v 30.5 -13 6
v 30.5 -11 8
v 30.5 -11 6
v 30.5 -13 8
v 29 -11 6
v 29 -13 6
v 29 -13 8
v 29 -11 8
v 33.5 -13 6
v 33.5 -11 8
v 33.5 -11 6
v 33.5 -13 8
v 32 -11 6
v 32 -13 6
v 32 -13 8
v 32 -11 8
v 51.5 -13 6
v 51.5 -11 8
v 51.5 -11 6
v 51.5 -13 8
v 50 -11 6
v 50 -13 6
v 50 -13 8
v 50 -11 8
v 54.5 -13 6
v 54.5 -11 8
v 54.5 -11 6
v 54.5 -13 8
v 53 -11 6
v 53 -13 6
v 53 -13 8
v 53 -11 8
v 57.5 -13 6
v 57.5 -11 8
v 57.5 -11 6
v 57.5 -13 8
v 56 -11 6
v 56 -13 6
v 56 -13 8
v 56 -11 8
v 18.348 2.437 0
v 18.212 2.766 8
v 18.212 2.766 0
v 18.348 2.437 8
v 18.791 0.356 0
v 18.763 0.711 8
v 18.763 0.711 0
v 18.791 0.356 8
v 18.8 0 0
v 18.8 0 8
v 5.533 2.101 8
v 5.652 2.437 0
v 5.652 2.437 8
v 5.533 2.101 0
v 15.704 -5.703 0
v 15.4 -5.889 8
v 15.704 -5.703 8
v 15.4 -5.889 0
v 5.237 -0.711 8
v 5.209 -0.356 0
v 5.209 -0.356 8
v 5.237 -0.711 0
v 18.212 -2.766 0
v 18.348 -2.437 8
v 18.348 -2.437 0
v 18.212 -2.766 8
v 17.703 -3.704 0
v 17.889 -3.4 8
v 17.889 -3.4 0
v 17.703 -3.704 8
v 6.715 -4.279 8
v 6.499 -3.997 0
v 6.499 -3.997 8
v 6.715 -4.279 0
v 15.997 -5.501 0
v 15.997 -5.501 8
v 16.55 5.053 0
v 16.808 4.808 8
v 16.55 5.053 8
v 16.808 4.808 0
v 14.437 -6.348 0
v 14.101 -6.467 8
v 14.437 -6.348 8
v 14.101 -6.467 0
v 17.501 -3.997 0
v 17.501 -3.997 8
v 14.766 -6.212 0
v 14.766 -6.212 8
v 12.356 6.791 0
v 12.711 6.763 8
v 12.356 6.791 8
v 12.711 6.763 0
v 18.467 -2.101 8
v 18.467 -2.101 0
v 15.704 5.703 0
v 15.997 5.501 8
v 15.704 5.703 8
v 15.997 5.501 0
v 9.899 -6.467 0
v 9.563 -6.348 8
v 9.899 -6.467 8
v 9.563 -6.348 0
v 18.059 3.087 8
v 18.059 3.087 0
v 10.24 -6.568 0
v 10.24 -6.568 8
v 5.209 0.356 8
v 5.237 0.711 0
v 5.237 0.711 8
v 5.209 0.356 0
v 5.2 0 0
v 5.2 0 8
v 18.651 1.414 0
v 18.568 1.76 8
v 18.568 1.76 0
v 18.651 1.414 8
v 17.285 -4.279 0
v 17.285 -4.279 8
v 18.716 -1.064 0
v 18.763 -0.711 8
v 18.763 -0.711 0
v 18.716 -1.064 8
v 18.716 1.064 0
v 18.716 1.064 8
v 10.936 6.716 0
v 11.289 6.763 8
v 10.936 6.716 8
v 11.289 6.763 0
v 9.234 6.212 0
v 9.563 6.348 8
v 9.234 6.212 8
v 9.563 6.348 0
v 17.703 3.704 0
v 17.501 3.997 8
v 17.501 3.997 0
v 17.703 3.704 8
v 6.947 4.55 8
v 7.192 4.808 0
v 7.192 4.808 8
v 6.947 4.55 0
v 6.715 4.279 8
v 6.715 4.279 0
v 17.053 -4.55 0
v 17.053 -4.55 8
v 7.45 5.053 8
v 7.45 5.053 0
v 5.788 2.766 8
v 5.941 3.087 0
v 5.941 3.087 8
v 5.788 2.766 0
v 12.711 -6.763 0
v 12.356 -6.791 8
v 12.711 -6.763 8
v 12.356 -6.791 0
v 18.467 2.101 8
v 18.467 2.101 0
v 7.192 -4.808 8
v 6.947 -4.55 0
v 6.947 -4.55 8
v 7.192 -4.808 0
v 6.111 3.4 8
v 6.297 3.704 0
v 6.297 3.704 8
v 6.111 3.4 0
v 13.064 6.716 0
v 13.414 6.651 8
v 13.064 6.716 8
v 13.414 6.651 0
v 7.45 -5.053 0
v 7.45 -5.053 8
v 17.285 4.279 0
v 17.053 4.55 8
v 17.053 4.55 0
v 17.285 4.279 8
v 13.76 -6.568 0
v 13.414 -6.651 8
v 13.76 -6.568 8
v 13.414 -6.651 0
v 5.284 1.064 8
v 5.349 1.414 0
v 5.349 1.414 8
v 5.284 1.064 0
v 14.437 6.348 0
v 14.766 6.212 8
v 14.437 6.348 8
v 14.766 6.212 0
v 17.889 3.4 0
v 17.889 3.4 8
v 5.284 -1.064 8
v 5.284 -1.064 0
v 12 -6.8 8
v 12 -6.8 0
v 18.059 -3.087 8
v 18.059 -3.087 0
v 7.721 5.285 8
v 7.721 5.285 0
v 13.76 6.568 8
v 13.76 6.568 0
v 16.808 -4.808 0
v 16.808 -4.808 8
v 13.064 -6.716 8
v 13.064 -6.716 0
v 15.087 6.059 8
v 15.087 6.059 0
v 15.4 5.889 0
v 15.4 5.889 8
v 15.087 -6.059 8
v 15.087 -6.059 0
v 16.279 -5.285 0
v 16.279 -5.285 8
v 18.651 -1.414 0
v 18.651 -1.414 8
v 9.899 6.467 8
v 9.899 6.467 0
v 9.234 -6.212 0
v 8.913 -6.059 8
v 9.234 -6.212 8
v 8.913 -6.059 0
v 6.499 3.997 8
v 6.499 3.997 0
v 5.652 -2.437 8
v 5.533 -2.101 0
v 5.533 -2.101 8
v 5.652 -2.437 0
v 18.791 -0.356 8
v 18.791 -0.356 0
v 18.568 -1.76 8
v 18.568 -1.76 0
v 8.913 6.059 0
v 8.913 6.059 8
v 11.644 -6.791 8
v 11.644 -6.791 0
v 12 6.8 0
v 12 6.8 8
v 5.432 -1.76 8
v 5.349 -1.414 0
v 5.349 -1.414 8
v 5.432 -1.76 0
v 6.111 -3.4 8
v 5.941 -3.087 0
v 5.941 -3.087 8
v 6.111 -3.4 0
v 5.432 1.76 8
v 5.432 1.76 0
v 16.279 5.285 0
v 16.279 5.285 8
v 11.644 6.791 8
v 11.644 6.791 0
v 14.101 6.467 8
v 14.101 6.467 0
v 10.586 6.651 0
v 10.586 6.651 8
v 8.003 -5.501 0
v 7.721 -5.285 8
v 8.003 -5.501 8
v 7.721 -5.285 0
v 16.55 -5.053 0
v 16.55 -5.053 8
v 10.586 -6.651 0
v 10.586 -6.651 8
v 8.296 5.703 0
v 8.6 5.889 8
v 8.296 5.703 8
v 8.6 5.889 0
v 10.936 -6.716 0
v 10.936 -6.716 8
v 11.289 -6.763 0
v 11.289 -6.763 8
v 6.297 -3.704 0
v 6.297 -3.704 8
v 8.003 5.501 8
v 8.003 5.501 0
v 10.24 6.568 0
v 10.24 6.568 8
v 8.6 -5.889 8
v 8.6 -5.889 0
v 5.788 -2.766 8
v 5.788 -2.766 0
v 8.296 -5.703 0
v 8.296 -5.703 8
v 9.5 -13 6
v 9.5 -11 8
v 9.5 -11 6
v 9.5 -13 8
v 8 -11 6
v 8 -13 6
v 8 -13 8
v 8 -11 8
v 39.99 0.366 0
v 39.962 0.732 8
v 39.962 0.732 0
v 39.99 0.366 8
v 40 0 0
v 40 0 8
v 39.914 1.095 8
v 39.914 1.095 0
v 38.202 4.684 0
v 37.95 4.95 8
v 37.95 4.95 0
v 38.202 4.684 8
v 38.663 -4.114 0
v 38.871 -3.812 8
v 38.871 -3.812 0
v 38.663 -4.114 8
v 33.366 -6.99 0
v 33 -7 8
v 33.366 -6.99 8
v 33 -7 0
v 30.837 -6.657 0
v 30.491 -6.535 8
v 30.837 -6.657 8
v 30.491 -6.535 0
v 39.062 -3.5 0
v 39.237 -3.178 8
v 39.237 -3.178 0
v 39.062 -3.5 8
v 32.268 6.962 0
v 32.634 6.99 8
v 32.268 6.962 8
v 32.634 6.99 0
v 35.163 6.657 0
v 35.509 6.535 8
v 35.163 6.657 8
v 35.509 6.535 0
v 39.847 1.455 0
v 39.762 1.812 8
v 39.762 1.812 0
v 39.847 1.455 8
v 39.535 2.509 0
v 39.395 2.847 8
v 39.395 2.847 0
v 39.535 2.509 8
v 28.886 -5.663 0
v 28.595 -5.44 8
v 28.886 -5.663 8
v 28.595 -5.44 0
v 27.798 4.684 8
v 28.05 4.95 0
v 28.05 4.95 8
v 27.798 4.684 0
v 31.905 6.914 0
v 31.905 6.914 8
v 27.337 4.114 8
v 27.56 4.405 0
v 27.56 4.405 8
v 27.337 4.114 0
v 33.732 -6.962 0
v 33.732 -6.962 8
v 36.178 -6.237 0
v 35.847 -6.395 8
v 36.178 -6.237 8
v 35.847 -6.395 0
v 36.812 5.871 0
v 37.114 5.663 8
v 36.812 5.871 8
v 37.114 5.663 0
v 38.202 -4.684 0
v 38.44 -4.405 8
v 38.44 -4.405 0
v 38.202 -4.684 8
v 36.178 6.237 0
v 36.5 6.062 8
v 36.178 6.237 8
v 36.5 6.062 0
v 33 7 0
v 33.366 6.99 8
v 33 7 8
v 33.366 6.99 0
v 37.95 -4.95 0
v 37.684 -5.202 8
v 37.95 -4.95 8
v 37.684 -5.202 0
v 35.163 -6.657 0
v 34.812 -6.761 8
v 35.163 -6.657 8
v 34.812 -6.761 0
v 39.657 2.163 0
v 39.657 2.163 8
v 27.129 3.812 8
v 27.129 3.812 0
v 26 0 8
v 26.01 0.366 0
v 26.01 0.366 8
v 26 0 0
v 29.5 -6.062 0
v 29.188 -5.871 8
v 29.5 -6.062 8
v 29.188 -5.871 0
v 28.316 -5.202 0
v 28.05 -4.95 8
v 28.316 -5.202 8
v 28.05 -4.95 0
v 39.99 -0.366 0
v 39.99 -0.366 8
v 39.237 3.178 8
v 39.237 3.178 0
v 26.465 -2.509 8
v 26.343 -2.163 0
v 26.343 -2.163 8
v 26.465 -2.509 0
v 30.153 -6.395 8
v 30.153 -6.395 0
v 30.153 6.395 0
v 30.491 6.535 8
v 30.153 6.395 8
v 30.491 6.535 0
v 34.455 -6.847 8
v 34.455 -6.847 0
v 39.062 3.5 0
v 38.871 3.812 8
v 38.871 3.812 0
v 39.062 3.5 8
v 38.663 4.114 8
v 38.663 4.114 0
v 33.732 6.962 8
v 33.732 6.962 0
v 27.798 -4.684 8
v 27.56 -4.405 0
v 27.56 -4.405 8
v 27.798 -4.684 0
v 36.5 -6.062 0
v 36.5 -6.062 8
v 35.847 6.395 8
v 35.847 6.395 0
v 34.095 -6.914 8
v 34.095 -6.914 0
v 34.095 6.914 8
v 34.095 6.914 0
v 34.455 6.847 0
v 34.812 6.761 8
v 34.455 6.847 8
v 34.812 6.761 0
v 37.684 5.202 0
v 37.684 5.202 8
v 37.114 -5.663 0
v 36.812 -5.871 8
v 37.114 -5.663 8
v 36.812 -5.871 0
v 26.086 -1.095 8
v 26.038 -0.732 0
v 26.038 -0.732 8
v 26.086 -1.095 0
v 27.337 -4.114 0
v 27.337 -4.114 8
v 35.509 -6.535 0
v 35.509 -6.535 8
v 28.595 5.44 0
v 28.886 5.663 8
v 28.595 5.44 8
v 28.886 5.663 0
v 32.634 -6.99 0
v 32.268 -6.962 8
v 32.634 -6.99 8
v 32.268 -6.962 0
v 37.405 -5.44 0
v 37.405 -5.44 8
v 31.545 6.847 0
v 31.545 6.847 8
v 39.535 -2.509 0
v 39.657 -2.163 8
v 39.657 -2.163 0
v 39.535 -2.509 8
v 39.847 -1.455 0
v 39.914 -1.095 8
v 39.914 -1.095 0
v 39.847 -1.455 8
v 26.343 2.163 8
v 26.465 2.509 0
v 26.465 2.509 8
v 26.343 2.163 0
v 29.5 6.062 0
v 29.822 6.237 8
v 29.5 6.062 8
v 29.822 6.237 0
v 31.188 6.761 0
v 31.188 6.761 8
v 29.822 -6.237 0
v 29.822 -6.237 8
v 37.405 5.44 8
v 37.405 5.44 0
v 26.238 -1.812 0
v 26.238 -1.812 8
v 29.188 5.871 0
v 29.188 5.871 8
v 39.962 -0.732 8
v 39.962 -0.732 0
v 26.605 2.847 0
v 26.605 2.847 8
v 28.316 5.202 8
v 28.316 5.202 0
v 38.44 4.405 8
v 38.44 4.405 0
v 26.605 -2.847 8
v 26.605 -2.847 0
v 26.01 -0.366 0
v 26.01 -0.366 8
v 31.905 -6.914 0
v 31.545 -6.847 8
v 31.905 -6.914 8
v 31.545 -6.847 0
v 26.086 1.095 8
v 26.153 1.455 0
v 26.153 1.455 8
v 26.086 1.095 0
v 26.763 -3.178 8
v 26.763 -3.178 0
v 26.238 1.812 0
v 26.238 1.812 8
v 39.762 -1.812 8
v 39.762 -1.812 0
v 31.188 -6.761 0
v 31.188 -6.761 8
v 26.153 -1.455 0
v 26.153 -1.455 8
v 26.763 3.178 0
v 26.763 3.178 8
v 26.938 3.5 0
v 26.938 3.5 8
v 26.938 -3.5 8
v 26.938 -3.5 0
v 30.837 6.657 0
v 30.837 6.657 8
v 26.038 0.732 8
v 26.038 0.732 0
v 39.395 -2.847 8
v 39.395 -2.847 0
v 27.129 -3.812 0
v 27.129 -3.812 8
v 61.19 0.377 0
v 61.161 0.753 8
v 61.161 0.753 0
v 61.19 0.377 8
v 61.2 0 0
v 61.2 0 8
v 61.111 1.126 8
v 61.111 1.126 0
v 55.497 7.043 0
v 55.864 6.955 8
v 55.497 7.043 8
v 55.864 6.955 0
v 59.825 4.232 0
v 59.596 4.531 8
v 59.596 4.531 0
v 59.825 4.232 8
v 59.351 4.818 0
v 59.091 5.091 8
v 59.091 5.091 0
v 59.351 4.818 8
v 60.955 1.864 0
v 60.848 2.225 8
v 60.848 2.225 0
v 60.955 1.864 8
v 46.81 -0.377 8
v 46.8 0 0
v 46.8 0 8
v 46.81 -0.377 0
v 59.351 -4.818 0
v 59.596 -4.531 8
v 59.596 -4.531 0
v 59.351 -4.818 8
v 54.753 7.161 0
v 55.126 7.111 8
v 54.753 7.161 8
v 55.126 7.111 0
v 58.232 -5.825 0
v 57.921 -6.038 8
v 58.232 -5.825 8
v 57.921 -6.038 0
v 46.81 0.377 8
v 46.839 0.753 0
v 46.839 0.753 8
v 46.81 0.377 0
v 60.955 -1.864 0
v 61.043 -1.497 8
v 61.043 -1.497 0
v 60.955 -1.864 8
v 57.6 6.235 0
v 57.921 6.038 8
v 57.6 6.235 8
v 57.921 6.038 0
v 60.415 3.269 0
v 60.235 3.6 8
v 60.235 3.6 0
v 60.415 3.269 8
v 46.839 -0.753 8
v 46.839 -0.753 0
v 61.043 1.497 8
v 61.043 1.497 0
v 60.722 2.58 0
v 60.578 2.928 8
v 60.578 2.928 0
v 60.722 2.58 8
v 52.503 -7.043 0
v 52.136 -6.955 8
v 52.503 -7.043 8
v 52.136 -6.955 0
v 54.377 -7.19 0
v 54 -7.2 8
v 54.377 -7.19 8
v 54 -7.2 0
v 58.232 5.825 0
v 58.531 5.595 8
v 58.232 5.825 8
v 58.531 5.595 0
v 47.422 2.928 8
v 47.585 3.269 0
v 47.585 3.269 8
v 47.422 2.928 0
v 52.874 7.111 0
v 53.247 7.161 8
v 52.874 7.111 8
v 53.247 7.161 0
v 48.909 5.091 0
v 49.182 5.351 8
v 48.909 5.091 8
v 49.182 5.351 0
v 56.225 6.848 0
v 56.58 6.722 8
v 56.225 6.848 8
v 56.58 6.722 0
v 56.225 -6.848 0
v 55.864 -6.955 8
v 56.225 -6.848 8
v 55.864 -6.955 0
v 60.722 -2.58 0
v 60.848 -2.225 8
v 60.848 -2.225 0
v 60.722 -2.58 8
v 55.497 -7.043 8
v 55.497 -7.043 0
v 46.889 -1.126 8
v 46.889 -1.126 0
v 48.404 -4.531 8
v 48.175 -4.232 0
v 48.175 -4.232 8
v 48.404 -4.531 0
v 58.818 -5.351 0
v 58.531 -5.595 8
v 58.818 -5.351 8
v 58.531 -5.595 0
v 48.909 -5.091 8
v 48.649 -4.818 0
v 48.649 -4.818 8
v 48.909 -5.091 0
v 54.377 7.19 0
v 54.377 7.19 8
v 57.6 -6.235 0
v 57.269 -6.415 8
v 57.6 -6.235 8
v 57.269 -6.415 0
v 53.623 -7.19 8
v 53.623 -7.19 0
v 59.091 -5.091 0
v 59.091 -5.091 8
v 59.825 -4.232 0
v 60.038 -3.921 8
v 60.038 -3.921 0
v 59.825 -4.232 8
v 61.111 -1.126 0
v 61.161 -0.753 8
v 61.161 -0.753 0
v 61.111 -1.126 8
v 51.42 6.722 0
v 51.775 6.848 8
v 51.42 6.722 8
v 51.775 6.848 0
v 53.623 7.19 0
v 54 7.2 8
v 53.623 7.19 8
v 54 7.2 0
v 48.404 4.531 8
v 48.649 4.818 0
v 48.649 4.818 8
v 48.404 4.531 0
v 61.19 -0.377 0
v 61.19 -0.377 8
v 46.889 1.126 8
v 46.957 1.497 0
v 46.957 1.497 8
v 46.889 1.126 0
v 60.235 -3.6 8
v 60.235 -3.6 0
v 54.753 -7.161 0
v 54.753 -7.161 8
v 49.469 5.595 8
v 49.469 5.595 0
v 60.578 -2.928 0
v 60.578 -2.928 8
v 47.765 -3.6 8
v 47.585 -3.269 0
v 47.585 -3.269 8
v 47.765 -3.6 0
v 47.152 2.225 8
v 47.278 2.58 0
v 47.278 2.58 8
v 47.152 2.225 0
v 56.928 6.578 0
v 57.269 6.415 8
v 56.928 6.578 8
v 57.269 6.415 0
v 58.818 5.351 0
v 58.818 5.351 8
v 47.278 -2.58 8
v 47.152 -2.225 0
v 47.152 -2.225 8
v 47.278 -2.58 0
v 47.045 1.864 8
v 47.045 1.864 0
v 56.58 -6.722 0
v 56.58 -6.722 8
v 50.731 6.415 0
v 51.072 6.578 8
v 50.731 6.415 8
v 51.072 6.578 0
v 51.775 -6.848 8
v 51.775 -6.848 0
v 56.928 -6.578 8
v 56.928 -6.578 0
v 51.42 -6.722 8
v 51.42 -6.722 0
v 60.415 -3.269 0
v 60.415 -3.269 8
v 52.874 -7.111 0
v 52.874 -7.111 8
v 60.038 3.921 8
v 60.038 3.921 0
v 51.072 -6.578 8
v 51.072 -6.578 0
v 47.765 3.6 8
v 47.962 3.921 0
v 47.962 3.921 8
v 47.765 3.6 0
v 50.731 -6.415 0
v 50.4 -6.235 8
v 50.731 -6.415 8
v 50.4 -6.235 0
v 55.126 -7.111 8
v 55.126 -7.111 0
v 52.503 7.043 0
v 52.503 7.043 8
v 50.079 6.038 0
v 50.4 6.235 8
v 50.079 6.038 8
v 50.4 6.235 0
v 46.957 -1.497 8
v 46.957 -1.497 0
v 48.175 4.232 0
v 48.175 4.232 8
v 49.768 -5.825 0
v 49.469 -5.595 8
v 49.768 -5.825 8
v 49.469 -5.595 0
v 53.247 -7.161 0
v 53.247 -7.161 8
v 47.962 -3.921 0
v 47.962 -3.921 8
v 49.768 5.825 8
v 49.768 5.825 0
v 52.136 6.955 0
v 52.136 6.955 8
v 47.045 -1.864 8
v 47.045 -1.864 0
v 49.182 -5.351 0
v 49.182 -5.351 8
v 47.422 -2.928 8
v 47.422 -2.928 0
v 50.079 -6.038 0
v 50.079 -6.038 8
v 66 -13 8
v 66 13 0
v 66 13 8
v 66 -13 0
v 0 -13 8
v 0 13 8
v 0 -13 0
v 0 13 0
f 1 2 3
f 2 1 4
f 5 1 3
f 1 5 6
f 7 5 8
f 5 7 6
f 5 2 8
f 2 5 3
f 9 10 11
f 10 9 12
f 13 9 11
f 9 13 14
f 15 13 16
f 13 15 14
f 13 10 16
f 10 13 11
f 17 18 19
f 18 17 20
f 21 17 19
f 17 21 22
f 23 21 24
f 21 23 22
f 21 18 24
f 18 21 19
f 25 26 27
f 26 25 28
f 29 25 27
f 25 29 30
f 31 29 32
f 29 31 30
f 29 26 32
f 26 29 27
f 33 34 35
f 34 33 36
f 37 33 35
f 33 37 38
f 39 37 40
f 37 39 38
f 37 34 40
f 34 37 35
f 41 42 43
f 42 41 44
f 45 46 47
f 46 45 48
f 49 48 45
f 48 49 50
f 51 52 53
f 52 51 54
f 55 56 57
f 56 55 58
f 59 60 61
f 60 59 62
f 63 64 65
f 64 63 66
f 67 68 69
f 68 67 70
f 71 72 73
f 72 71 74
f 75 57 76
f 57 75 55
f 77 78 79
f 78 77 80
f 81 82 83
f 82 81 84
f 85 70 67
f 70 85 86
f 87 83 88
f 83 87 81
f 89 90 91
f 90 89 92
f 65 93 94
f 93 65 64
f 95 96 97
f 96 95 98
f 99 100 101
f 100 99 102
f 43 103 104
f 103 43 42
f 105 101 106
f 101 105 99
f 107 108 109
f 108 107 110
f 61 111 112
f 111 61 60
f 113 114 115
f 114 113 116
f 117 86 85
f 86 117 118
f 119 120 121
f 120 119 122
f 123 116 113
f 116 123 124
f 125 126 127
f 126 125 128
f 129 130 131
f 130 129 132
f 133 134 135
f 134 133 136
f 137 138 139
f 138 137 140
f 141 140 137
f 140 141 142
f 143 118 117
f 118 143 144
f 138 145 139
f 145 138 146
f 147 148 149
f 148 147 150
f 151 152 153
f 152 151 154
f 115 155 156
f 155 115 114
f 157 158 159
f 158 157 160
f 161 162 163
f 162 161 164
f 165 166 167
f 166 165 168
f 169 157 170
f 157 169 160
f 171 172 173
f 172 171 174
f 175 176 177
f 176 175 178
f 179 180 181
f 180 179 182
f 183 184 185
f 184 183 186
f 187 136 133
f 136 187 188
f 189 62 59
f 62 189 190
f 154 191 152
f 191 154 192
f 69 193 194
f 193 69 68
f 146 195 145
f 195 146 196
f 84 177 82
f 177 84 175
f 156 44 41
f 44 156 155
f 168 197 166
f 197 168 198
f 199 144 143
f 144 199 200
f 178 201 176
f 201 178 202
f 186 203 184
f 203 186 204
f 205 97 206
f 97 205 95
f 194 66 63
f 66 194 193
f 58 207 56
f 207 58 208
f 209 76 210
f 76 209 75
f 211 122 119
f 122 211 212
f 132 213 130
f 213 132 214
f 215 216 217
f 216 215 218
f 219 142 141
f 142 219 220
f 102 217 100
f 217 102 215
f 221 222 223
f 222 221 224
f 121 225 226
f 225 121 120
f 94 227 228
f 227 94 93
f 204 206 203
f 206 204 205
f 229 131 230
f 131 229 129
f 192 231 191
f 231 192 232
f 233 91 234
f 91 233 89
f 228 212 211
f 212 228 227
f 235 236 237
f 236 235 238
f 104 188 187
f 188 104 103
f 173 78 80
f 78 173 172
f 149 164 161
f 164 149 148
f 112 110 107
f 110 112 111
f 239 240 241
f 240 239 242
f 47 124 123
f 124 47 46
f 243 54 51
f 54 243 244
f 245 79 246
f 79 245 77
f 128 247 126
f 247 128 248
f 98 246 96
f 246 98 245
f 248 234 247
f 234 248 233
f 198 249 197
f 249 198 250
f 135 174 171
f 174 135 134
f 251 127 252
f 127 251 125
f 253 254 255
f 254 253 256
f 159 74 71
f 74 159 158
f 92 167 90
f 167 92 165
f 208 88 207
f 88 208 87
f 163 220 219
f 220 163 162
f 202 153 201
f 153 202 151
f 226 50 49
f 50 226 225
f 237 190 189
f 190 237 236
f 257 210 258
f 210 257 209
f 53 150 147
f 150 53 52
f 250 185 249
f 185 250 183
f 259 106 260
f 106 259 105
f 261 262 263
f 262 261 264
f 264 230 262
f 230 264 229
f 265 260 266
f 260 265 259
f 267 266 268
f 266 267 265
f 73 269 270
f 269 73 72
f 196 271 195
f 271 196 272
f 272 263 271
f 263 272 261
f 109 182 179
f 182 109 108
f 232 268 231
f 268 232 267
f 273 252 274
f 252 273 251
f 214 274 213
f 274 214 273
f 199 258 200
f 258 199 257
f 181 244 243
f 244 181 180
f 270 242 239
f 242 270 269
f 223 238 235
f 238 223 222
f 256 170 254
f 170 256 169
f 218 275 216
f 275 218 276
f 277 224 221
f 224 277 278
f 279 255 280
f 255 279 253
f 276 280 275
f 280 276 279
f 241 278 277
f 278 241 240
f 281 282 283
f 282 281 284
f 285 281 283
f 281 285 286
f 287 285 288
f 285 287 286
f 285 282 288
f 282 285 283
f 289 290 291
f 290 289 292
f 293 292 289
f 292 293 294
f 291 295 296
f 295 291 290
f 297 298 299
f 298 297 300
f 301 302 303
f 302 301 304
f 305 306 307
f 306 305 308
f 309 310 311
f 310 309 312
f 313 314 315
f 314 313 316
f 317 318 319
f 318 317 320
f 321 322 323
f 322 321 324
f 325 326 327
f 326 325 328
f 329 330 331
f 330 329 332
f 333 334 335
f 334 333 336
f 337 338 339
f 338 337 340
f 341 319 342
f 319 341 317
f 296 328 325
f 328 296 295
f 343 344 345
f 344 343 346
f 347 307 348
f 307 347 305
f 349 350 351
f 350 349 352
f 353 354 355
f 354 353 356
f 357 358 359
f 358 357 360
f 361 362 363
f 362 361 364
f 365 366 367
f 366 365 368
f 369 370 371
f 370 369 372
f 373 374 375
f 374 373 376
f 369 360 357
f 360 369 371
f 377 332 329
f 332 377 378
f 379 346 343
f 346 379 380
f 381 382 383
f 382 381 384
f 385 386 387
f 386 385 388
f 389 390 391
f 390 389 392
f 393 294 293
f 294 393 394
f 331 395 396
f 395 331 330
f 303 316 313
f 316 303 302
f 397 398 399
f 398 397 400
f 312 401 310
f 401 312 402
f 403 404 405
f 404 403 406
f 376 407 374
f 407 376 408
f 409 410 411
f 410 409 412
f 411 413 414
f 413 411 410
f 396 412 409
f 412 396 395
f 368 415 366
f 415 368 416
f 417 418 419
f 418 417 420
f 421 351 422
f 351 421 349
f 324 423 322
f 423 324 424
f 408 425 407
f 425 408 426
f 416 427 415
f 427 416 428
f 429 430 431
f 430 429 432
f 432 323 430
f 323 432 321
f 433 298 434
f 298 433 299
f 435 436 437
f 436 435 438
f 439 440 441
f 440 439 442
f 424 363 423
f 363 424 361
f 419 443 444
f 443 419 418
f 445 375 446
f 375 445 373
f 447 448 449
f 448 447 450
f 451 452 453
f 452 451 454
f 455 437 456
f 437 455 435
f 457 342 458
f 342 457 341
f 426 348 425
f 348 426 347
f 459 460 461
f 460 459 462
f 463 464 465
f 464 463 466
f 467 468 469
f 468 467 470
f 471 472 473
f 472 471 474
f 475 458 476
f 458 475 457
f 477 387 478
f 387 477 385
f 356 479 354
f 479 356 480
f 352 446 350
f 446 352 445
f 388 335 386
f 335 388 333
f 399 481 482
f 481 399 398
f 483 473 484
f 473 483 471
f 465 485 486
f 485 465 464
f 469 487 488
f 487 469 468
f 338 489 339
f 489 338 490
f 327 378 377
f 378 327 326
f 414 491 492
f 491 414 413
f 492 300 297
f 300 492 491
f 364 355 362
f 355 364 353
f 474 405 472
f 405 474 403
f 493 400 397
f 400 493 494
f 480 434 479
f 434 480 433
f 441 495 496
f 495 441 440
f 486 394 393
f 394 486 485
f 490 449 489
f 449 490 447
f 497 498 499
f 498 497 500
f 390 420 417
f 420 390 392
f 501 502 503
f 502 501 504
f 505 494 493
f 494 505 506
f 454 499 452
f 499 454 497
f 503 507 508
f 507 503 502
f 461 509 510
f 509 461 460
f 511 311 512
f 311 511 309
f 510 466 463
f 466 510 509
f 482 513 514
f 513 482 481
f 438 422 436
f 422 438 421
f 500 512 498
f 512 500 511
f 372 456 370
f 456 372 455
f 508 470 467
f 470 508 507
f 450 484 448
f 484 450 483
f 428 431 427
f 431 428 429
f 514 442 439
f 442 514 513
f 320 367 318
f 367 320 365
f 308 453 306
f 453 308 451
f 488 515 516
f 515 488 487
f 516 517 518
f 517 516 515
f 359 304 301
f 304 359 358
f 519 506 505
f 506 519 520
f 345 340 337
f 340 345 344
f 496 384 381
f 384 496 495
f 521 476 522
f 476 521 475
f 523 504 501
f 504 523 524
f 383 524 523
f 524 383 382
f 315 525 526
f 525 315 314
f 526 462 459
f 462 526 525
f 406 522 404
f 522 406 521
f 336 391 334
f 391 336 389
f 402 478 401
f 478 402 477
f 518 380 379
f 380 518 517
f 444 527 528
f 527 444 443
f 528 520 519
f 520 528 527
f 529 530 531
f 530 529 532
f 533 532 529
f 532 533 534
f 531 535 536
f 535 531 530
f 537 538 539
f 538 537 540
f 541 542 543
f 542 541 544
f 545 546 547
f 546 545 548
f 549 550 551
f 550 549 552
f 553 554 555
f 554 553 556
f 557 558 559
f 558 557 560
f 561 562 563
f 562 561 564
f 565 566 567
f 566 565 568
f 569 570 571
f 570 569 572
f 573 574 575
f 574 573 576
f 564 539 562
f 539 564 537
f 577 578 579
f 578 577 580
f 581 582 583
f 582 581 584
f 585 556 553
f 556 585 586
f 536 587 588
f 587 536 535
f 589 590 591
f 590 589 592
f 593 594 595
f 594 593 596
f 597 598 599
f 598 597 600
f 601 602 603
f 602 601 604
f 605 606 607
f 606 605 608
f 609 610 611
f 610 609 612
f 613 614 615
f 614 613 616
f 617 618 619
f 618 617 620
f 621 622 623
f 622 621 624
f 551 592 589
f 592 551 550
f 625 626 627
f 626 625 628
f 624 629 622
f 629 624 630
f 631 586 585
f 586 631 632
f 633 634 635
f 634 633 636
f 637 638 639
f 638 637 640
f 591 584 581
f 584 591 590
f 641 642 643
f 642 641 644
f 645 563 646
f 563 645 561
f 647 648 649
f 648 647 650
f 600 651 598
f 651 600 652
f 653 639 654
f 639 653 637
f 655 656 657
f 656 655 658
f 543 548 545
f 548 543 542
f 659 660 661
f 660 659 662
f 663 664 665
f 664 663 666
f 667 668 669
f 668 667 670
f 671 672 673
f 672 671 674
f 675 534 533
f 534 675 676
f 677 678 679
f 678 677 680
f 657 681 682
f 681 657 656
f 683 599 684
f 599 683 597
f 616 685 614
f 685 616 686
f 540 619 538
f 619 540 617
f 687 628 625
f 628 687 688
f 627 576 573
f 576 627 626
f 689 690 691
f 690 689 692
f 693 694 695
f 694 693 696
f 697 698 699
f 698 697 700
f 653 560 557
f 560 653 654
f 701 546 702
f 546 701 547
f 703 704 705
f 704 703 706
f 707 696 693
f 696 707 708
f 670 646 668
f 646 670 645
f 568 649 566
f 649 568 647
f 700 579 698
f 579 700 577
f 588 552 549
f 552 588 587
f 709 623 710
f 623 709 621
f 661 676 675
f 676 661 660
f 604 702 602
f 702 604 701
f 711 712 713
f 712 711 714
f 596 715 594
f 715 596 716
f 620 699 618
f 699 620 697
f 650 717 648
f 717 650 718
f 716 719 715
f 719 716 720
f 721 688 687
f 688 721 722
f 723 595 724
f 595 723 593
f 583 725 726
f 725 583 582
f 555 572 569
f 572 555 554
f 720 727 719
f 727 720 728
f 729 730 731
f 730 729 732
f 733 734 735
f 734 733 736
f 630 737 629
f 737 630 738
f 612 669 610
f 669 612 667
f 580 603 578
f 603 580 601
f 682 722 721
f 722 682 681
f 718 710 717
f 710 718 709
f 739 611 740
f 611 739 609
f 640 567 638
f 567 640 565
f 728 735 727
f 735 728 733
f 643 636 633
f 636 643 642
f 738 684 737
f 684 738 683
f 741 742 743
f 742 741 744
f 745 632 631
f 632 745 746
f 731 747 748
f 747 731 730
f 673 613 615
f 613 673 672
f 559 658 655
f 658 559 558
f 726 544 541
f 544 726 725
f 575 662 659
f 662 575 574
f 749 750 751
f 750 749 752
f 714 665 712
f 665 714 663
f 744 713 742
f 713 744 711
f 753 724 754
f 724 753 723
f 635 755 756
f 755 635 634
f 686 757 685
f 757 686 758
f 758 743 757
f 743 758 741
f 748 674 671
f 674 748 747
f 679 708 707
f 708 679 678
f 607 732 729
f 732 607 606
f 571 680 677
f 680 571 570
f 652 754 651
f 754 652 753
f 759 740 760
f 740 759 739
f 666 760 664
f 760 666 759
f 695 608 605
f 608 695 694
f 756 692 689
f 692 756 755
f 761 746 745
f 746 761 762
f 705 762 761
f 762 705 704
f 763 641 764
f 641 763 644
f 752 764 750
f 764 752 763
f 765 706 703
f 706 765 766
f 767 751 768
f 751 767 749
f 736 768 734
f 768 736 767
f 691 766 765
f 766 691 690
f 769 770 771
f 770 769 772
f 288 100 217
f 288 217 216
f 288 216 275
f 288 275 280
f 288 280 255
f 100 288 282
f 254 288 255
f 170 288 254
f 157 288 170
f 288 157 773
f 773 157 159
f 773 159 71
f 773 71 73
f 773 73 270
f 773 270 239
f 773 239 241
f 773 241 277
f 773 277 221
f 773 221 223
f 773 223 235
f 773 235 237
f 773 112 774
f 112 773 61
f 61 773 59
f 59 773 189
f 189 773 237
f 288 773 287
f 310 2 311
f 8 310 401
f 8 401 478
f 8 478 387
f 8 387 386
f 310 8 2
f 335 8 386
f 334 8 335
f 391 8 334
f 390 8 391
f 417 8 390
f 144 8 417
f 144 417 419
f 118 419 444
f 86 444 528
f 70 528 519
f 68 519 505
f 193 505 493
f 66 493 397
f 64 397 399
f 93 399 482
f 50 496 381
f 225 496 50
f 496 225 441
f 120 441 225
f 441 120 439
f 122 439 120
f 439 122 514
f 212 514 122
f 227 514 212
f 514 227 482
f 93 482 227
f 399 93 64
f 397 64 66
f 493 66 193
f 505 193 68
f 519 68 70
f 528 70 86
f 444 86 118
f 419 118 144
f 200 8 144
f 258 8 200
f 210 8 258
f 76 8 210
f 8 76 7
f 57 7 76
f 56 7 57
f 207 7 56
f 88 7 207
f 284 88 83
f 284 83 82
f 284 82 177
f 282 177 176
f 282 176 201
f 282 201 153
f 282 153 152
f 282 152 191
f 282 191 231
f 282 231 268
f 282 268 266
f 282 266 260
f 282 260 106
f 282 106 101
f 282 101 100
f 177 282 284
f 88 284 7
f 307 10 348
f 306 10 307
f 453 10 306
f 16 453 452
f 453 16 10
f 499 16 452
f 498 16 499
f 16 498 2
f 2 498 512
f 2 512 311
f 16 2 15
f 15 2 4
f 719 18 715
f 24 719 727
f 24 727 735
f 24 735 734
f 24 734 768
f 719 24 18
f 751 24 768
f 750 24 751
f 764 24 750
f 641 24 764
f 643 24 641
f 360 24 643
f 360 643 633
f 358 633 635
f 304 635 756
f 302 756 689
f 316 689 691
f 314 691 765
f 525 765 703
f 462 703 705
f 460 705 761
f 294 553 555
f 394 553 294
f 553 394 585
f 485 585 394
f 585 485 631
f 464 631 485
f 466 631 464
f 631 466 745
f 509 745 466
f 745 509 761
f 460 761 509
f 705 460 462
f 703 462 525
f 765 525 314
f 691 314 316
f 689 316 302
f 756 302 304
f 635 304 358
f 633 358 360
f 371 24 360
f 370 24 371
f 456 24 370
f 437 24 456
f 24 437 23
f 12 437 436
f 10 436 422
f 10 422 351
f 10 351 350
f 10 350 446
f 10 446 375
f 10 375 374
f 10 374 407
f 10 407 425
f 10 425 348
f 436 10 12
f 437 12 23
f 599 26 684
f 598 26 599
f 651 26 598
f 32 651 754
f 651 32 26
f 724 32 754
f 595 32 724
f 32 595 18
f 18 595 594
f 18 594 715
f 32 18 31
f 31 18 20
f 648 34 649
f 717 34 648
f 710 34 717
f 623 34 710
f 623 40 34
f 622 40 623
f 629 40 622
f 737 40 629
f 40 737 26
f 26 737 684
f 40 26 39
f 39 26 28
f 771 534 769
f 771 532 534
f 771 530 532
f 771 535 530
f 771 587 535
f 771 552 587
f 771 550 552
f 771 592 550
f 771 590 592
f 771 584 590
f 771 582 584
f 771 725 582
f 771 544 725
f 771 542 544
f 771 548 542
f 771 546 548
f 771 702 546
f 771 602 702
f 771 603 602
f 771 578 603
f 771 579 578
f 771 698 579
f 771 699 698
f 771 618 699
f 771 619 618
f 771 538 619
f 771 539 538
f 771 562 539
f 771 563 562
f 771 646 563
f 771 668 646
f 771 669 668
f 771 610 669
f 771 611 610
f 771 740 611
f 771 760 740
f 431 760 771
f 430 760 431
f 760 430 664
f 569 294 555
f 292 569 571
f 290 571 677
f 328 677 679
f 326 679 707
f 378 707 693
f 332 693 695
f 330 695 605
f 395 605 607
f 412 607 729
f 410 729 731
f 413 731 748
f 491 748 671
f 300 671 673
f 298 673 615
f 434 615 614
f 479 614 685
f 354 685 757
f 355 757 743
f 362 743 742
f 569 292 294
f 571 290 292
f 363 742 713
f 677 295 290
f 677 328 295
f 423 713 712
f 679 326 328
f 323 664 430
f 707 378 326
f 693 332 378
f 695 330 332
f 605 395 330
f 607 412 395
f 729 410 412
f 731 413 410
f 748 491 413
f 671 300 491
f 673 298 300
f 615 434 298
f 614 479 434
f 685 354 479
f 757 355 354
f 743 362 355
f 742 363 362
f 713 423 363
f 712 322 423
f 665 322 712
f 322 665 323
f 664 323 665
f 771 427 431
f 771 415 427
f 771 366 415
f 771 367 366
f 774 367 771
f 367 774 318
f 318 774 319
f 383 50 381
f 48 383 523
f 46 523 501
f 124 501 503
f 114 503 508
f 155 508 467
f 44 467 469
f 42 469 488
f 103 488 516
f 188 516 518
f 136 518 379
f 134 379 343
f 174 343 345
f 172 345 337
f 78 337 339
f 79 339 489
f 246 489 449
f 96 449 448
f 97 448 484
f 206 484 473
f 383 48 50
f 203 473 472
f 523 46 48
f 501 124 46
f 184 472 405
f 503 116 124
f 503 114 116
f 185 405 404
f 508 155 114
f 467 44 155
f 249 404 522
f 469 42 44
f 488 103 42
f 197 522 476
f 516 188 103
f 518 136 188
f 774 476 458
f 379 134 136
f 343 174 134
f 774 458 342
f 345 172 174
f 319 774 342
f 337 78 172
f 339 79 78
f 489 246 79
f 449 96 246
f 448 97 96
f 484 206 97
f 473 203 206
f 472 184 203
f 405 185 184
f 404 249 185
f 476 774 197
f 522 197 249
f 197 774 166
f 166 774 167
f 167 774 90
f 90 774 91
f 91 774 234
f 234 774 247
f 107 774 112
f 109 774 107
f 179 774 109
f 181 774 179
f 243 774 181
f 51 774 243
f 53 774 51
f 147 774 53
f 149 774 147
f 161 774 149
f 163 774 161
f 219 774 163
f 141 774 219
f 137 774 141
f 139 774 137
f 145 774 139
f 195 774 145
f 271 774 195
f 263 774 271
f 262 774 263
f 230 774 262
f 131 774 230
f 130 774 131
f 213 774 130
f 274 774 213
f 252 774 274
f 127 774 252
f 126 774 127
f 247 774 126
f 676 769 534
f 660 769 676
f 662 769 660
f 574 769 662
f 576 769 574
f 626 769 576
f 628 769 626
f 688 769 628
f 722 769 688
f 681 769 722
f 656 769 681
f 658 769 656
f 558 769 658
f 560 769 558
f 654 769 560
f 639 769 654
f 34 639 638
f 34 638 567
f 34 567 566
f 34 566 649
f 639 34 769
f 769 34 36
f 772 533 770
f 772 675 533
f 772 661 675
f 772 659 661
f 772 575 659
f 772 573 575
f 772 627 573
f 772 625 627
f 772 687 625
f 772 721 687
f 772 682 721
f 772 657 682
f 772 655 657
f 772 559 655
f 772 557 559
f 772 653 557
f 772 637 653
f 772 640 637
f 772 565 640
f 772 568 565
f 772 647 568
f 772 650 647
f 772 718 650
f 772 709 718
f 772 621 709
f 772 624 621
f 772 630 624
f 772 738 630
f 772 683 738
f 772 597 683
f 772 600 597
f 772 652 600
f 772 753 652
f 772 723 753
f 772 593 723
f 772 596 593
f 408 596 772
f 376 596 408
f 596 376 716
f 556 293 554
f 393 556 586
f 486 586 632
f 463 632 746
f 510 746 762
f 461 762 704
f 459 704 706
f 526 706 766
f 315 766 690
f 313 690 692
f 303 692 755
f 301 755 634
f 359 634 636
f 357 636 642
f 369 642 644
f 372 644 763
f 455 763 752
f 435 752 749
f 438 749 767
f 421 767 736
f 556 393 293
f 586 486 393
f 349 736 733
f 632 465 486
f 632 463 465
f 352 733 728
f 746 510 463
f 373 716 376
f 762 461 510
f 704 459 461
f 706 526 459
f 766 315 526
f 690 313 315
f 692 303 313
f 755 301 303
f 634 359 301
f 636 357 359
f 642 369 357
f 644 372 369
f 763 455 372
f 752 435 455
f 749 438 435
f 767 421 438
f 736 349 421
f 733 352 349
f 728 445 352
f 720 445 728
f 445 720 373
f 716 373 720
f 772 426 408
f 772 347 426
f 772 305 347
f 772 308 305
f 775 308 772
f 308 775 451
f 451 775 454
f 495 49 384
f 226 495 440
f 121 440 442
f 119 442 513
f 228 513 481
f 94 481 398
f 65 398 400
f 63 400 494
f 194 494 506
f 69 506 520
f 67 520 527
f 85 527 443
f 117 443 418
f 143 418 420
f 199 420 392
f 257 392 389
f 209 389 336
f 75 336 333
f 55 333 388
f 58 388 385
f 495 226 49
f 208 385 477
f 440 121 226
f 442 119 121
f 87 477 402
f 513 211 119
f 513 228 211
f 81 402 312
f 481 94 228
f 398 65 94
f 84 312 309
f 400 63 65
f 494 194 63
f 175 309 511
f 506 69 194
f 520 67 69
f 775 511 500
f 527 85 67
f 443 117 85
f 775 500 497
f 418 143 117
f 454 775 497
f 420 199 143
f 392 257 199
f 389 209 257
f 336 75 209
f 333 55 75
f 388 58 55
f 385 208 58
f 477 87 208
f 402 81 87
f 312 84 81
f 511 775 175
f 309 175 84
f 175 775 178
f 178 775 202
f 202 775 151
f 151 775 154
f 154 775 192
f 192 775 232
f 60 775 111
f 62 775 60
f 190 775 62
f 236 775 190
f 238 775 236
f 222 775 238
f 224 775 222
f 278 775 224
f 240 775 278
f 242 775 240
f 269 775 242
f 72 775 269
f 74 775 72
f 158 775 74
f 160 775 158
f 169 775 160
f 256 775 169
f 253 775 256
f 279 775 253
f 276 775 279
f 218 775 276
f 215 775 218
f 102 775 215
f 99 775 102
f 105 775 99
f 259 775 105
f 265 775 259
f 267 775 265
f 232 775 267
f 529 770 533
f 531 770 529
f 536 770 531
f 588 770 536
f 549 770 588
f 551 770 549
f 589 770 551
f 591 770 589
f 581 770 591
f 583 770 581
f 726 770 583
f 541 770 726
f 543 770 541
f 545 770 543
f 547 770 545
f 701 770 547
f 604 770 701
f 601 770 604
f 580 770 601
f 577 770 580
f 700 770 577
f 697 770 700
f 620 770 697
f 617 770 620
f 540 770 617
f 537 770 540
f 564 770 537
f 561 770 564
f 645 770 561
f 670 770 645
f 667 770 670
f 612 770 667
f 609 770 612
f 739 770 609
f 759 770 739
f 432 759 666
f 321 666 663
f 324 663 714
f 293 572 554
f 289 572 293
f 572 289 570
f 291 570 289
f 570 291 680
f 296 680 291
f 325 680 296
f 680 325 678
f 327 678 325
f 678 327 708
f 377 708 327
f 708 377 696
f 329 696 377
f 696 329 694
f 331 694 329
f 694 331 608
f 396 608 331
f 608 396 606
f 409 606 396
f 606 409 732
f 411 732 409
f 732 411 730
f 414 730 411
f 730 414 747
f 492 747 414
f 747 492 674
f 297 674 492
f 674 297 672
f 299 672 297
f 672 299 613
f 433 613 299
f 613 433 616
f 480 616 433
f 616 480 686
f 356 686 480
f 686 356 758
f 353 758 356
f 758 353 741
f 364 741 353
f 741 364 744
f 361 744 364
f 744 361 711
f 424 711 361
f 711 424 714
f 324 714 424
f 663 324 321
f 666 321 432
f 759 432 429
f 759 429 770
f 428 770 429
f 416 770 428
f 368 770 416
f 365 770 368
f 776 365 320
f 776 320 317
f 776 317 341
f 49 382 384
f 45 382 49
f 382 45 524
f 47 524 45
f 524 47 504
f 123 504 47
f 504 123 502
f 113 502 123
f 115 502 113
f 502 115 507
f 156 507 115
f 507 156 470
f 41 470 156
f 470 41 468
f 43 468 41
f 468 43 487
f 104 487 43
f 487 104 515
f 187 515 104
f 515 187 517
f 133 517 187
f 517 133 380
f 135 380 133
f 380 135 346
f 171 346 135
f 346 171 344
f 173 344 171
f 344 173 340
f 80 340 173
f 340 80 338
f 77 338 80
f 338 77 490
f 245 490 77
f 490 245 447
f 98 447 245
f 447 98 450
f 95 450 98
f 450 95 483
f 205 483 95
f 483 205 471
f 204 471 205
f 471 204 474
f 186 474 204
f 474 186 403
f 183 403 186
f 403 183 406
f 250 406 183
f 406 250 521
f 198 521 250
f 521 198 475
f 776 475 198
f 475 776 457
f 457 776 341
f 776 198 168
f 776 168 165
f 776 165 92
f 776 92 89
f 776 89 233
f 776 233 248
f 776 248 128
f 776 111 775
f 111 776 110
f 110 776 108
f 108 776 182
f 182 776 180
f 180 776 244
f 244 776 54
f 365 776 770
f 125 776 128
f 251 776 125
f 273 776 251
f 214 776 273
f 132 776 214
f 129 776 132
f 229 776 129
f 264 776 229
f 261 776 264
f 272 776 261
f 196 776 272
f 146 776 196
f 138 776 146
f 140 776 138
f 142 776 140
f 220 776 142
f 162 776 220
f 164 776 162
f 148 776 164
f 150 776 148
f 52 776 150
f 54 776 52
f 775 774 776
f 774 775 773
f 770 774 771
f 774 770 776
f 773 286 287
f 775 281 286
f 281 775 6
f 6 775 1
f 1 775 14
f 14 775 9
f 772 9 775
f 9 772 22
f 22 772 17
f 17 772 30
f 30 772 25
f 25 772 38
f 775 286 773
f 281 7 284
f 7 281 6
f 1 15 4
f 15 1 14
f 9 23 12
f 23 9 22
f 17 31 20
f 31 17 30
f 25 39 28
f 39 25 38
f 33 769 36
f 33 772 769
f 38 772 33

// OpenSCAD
// Fit test for the tripod leg tube (the legs are about 13 mm across).
// One flat plate with three holes: 13.6, 14.0 and 14.4 mm, marked with
// 1, 2 and 3 notches. Push the end of a leg into each hole: the right size
// slides on by hand without wobbling. Use that size as leg_hole in
// leg-joiner.scad and leg-foot.scad.
// Print in PLA, 0.2 mm layers, no supports.

holes  = [13.6, 14.0, 14.4];
plate  = [66, 26, 8];   // plate size, mm (big flat base so it sticks)
$fn    = 120;

difference() {
  translate([0, -plate[1] / 2, 0]) cube(plate);
  for (i = [0 : len(holes) - 1]) {
    translate([12 + i * 21, 0, -1]) cylinder(h = plate[2] + 2, d = holes[i]);
    // Notches on the front edge: 1, 2 or 3 to tell the holes apart.
    for (n = [0 : i])
      translate([12 + i * 21 - 4 + n * 3, -plate[1] / 2 - 1, plate[2] - 2])
        cube([1.5, 3, 3]);
  }
}
